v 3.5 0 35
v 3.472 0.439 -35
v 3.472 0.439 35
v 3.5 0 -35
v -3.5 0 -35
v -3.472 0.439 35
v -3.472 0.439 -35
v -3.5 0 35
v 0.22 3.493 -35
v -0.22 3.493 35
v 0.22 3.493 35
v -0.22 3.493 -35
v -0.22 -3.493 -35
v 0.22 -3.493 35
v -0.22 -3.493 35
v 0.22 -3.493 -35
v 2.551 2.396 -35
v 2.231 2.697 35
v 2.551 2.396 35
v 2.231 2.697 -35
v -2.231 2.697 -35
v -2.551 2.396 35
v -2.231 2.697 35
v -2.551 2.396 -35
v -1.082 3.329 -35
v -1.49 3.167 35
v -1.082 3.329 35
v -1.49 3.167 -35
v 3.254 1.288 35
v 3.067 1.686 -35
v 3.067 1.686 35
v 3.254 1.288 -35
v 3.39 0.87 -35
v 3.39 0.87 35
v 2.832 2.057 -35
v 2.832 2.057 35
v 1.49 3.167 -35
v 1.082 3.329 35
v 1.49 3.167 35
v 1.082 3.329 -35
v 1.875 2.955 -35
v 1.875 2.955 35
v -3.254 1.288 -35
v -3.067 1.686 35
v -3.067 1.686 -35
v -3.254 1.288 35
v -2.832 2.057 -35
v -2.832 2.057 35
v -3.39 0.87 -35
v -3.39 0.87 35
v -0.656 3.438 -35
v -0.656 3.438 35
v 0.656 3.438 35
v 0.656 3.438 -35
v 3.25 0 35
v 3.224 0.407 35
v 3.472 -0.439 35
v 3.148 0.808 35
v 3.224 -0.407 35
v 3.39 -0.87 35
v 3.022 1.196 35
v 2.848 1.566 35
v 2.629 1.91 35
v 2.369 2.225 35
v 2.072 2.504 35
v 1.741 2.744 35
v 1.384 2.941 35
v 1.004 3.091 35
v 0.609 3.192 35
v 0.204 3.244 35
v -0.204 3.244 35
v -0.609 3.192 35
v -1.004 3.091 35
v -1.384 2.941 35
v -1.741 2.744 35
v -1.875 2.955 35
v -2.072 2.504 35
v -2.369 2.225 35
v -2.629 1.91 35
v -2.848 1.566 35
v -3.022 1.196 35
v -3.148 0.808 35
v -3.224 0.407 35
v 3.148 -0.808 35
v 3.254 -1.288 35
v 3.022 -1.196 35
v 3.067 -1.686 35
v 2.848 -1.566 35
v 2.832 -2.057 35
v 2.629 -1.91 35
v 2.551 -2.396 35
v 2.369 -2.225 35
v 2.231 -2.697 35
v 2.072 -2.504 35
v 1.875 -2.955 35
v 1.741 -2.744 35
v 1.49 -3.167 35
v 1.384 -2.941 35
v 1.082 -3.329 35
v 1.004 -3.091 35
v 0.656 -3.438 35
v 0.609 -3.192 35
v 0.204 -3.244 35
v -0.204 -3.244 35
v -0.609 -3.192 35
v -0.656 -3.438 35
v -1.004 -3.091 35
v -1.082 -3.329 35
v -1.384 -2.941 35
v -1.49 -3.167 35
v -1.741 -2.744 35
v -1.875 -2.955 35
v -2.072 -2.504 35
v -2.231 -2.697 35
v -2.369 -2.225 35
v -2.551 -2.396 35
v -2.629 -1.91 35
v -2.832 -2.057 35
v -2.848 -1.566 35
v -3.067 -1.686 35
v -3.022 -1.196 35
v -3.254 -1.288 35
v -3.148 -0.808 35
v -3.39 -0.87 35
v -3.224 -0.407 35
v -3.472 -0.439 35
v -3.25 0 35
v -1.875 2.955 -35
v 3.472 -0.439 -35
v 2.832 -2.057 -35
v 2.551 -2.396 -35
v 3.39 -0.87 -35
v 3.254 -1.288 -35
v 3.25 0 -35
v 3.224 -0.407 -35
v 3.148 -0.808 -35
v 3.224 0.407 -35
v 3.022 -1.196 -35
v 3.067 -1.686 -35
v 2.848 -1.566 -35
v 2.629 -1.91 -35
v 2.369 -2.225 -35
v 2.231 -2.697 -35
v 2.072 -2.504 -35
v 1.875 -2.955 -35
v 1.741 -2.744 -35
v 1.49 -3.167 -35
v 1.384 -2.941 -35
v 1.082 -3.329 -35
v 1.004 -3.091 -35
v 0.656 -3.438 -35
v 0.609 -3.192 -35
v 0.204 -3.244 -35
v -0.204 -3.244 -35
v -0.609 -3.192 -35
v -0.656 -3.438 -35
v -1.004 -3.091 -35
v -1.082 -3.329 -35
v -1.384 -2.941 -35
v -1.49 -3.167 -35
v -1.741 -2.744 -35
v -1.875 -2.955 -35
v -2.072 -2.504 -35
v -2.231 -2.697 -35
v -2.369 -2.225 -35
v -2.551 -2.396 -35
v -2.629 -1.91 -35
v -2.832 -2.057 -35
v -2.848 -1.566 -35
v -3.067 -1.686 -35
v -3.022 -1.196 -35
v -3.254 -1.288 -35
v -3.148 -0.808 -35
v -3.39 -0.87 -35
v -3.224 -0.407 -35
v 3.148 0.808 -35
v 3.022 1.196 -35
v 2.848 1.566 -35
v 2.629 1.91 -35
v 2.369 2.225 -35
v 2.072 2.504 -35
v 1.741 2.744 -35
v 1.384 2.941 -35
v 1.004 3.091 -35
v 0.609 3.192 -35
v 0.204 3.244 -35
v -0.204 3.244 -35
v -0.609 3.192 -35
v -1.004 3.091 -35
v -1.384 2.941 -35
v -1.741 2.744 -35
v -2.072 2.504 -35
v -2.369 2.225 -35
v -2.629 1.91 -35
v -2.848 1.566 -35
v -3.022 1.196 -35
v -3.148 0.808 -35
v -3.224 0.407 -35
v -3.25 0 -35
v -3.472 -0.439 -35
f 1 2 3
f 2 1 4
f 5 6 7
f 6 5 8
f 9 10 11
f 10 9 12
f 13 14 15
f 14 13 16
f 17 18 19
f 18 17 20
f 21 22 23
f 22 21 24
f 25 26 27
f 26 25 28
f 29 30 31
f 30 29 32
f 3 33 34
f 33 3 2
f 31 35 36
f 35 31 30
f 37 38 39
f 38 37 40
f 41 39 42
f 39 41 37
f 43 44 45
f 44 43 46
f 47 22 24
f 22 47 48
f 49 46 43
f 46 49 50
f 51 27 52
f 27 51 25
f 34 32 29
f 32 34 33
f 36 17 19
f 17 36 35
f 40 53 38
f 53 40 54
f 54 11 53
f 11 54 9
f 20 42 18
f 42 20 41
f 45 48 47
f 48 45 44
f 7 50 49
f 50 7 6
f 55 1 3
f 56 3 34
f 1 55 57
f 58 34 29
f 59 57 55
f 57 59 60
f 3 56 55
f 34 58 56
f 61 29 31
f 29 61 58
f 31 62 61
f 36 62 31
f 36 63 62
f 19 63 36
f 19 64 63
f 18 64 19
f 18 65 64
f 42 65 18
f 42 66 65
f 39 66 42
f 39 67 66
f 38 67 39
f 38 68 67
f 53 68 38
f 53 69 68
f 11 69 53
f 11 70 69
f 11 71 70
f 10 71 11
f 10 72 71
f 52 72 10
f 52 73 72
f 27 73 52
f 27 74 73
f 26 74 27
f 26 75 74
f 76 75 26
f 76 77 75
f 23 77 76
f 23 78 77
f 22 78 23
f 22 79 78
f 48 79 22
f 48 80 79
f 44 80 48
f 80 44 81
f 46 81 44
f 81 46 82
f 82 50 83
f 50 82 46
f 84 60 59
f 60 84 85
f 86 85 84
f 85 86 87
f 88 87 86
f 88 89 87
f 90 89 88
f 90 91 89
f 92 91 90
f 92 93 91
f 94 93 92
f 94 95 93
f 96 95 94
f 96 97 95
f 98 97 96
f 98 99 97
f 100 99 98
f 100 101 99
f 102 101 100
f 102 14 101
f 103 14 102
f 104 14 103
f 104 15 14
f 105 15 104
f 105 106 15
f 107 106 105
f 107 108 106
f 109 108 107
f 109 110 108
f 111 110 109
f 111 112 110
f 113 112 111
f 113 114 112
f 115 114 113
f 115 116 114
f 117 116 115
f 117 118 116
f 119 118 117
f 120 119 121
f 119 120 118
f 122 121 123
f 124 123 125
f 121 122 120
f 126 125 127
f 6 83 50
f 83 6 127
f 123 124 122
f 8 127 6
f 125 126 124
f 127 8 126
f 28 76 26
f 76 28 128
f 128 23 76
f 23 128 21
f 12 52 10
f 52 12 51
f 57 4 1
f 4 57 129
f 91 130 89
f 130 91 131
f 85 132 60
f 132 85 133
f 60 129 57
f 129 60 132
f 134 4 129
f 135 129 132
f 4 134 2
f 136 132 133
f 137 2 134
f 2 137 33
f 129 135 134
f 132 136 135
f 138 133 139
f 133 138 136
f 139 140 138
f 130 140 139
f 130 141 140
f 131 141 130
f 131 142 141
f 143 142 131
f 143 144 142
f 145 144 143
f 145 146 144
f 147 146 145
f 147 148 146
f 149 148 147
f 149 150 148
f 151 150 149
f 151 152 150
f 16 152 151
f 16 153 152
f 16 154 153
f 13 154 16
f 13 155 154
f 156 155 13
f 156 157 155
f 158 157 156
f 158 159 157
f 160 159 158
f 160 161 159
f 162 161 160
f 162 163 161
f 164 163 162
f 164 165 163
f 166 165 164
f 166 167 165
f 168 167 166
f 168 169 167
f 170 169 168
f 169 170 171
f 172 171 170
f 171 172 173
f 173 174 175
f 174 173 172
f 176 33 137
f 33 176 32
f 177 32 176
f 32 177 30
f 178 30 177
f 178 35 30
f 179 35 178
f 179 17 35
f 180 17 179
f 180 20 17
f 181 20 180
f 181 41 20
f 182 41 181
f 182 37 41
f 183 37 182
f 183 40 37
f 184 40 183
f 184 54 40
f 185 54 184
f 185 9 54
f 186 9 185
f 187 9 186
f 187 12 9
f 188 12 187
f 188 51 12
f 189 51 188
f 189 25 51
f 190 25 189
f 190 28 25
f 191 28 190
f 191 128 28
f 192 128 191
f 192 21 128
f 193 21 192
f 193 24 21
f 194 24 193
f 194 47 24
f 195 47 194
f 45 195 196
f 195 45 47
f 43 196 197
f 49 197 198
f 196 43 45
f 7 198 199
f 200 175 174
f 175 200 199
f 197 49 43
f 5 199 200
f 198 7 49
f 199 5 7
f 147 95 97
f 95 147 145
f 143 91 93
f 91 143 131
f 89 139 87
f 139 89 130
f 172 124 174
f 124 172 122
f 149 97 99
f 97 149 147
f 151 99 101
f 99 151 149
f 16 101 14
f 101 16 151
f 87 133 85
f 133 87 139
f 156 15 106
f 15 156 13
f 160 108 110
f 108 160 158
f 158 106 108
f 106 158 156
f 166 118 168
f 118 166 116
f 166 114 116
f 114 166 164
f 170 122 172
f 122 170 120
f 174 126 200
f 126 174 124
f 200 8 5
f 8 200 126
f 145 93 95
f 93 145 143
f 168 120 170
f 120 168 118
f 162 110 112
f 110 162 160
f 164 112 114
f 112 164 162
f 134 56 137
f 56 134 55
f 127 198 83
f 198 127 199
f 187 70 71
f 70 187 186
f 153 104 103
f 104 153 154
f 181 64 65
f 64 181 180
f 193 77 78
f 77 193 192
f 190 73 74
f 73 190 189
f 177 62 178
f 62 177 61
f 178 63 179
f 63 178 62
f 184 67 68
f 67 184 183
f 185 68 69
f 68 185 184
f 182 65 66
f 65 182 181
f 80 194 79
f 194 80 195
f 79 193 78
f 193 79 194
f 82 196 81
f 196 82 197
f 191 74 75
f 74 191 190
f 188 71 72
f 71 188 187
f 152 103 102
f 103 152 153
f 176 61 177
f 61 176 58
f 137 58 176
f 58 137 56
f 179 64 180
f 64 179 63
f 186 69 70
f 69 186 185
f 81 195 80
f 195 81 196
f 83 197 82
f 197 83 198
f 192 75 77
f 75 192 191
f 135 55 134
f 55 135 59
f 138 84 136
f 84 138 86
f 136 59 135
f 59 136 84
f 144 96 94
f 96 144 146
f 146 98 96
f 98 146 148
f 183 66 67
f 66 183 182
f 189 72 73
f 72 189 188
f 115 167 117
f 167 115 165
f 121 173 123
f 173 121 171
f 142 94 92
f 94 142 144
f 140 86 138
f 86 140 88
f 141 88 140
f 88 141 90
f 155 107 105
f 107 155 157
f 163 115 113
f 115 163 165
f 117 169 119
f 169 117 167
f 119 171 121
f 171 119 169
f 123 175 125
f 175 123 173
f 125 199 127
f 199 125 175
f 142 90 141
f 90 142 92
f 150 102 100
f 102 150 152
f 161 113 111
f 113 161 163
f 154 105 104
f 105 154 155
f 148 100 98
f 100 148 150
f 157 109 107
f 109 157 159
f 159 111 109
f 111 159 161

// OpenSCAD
$fn = 50;


difference() {
	union() {
		translate(v = [0, 0, -35.0000000000]) {
			cylinder(h = 70, r = 3.5000000000);
		}
	}
	union() {
		translate(v = [0, 0, -100.0000000000]) {
			cylinder(h = 200, r = 3.2500000000);
		}
	}
}
